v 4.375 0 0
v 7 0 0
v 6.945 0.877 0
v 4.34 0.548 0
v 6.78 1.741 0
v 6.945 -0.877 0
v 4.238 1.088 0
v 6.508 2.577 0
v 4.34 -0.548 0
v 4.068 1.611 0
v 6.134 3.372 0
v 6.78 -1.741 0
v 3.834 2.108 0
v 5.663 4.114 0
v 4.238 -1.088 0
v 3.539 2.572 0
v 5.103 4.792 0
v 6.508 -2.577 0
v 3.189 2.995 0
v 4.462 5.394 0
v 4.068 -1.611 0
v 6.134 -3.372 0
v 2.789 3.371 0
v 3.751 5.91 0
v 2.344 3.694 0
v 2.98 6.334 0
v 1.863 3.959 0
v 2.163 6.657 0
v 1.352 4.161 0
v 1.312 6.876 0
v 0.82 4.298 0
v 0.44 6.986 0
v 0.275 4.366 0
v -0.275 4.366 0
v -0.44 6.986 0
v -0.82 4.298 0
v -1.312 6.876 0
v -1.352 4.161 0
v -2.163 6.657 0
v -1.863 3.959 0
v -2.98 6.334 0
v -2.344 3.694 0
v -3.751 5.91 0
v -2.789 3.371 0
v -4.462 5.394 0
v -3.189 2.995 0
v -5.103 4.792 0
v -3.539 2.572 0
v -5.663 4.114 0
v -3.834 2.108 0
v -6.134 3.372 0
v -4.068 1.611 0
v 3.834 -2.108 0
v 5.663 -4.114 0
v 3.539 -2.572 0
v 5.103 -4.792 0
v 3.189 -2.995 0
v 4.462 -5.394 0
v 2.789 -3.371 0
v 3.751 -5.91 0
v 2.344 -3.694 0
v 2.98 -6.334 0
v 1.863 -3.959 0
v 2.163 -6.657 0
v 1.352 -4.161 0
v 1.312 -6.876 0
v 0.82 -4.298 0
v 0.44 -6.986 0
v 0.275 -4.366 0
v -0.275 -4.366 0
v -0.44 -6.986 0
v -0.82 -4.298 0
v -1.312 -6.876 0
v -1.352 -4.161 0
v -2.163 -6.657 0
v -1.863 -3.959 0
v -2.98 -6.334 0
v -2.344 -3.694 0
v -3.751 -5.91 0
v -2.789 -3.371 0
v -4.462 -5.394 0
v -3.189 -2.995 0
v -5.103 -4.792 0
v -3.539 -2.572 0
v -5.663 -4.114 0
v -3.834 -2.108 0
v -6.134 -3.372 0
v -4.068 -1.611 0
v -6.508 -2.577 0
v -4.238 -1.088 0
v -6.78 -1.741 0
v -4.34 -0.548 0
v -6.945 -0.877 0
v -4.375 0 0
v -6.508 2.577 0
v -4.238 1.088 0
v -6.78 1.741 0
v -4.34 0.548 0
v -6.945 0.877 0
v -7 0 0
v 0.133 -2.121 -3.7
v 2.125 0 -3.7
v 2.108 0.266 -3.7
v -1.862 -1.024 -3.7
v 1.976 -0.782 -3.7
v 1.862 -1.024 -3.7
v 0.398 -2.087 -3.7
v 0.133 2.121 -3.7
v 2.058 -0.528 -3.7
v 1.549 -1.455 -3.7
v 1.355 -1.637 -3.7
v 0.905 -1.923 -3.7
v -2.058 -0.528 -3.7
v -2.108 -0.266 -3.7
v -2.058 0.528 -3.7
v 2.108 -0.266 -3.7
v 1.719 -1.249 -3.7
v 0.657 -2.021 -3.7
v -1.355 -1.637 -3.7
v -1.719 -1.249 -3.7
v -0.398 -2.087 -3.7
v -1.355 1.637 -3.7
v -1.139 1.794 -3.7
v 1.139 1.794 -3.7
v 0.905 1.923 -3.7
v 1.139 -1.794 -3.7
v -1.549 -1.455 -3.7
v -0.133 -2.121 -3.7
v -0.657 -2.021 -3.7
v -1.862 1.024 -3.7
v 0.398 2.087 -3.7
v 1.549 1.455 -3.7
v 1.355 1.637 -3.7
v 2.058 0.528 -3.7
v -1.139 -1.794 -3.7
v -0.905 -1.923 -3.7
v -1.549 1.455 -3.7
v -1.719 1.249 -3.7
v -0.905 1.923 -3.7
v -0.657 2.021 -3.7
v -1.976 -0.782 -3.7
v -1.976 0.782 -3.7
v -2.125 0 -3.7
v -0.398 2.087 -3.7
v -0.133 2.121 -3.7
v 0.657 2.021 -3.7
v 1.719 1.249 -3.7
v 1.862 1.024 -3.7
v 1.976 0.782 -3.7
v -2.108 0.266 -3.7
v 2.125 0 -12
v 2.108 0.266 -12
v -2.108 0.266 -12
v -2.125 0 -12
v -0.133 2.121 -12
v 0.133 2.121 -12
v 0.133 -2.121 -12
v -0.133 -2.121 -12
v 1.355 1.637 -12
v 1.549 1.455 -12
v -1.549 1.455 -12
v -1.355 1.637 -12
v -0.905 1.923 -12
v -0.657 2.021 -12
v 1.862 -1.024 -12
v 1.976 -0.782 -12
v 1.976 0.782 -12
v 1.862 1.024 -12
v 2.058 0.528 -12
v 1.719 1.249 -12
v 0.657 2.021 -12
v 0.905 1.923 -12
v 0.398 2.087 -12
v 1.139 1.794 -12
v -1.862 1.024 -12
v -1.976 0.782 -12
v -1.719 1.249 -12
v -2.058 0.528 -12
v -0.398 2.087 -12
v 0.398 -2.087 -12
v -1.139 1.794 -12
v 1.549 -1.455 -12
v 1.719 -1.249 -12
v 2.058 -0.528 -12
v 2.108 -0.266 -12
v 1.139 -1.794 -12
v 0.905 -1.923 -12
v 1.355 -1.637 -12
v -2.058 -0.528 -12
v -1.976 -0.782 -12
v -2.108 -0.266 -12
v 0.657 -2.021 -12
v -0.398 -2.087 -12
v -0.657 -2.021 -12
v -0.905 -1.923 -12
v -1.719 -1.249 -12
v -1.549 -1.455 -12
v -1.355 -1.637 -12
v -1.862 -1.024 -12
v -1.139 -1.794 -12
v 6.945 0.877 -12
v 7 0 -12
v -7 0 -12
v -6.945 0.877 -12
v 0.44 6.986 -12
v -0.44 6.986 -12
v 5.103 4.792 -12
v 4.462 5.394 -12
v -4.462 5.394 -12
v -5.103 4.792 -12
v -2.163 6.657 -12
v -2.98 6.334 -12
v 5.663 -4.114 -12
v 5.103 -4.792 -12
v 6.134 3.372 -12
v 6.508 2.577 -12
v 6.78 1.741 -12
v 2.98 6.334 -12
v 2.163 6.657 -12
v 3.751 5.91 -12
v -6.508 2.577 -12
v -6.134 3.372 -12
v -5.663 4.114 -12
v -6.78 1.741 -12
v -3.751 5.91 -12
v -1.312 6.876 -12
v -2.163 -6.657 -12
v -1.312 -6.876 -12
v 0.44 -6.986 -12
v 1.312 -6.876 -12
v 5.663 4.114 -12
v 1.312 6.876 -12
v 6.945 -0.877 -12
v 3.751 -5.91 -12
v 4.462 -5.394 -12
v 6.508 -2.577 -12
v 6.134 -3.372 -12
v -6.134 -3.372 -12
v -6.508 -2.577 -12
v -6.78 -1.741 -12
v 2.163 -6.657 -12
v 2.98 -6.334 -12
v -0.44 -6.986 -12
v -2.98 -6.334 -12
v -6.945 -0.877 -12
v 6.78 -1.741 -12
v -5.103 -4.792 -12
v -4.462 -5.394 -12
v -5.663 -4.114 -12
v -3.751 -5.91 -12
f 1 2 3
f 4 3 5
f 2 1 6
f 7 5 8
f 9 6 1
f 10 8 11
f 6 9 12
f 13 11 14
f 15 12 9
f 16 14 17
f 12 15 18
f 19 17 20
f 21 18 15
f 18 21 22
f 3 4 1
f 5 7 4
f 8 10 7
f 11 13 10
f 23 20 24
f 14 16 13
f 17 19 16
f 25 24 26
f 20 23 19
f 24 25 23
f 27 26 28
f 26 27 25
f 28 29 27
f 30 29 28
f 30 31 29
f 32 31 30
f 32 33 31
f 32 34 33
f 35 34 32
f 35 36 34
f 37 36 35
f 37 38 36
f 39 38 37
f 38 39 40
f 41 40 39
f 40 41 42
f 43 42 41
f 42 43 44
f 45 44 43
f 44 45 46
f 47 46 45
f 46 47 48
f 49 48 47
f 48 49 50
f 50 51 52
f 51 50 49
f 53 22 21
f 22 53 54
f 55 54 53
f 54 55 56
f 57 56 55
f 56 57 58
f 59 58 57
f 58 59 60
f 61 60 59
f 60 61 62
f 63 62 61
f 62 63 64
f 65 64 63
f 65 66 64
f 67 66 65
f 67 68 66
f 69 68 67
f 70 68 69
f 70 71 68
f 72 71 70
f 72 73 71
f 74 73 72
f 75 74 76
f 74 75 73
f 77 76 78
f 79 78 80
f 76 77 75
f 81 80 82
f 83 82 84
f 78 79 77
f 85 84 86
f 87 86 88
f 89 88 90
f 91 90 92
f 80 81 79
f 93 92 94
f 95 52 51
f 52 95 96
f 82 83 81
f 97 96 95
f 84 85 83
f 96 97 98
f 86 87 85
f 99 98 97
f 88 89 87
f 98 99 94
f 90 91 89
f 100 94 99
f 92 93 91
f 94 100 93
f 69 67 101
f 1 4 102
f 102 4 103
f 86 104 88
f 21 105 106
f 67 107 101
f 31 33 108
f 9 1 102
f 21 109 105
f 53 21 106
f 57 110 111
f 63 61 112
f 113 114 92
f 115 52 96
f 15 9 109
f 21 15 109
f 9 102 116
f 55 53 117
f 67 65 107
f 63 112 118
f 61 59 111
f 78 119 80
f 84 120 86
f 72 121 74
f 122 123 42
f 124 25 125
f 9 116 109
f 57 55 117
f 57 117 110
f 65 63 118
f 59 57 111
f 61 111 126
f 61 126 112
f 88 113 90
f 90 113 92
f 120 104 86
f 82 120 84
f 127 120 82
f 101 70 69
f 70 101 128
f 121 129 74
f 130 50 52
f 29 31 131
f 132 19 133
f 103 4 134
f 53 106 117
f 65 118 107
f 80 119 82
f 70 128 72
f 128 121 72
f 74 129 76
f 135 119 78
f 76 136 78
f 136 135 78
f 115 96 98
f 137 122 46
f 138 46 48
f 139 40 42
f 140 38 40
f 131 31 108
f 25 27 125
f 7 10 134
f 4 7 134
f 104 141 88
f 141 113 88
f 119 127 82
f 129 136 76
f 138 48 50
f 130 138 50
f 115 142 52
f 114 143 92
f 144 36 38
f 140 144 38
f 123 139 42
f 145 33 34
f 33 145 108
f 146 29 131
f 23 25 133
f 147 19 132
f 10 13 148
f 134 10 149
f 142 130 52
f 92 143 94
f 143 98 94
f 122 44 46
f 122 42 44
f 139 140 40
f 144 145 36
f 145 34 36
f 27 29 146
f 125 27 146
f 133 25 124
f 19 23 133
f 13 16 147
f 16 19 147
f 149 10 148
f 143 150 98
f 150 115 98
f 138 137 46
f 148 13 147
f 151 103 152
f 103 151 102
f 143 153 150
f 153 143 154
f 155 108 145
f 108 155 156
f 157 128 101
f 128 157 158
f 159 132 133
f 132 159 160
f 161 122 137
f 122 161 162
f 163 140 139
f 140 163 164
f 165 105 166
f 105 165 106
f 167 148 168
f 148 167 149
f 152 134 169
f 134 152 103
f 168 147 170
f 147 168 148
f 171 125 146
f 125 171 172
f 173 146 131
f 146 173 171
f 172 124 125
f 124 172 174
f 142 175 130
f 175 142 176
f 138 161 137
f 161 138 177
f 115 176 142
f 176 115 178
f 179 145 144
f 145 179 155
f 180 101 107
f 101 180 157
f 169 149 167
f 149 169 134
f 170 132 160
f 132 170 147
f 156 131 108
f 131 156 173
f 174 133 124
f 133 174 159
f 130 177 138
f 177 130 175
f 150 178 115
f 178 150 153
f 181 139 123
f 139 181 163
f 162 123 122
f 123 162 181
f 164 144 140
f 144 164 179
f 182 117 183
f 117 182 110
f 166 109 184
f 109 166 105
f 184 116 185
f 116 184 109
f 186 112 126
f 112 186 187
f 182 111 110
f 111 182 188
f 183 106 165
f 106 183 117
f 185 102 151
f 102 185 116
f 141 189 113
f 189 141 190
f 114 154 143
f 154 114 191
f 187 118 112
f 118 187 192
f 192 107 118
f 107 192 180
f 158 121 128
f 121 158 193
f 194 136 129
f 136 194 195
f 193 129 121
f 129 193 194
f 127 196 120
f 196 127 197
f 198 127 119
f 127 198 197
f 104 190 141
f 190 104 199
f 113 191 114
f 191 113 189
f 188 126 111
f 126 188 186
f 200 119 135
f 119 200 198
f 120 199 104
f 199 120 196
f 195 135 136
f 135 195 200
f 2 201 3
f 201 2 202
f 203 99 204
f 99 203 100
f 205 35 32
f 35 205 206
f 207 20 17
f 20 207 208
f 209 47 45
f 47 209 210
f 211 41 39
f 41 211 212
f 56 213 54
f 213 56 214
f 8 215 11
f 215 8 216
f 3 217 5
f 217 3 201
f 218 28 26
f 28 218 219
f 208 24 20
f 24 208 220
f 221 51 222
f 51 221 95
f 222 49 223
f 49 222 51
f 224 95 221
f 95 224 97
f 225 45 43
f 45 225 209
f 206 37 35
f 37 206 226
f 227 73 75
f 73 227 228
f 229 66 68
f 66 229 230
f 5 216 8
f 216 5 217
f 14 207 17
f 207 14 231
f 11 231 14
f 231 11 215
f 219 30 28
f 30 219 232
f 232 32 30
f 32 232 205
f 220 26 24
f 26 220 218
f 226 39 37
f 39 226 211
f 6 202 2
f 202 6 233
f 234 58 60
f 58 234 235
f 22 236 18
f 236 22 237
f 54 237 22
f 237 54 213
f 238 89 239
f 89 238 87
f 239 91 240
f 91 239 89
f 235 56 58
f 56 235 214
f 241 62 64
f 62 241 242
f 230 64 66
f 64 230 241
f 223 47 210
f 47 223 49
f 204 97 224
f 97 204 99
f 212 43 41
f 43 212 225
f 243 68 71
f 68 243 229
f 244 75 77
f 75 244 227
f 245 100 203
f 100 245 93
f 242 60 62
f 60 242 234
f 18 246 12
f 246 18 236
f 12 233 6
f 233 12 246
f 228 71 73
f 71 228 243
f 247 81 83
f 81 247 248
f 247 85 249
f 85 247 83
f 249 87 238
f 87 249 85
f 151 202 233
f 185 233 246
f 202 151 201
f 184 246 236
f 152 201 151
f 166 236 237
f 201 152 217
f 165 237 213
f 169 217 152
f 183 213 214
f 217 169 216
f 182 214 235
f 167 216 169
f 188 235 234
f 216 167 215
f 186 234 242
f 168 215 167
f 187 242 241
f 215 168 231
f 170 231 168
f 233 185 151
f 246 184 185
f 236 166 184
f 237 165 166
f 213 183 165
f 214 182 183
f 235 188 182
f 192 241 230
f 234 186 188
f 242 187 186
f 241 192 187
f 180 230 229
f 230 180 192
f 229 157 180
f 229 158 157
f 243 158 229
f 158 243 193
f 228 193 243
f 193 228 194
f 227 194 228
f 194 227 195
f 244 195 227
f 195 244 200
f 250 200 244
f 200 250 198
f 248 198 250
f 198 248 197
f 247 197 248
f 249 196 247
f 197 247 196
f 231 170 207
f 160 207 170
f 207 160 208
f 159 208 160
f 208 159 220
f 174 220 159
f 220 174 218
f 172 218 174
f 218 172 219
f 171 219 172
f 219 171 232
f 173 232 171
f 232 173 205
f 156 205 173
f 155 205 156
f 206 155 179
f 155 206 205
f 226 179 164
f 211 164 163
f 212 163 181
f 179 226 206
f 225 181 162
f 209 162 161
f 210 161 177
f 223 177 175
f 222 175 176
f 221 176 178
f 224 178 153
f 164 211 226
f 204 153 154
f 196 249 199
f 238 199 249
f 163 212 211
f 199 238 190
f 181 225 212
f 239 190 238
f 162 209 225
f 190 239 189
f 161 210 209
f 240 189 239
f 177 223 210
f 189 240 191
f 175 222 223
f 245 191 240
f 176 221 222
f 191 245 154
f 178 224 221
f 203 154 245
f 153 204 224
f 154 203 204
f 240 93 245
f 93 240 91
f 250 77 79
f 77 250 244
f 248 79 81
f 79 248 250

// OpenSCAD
$fn = 50;


difference() {
	union() {
		translate(v = [0, 0, -12.0000000000]) {
			cylinder(h = 12, r = 7.0000000000);
		}
	}
	union() {
		translate(v = [0, 0, 0]) {
			rotate(a = [0, 0, 0]) {
				difference() {
					union() {
						translate(v = [0, 0, -15.0000000000]) {
							cylinder(h = 15, r = 2.0000000000);
						}
						translate(v = [0, 0, -3.7000000000]) {
							cylinder(h = 3.7000000000, r1 = 2.1250000000, r2 = 4.3750000000);
						}
						translate(v = [0, 0, -15.0000000000]) {
							cylinder(h = 15, r = 2.1250000000);
						}
						translate(v = [0, 0, -15.0000000000]) {
							cylinder(h = 15, r = 2.0000000000);
						}
					}
					union();
				}
			}
		}
	}
}
